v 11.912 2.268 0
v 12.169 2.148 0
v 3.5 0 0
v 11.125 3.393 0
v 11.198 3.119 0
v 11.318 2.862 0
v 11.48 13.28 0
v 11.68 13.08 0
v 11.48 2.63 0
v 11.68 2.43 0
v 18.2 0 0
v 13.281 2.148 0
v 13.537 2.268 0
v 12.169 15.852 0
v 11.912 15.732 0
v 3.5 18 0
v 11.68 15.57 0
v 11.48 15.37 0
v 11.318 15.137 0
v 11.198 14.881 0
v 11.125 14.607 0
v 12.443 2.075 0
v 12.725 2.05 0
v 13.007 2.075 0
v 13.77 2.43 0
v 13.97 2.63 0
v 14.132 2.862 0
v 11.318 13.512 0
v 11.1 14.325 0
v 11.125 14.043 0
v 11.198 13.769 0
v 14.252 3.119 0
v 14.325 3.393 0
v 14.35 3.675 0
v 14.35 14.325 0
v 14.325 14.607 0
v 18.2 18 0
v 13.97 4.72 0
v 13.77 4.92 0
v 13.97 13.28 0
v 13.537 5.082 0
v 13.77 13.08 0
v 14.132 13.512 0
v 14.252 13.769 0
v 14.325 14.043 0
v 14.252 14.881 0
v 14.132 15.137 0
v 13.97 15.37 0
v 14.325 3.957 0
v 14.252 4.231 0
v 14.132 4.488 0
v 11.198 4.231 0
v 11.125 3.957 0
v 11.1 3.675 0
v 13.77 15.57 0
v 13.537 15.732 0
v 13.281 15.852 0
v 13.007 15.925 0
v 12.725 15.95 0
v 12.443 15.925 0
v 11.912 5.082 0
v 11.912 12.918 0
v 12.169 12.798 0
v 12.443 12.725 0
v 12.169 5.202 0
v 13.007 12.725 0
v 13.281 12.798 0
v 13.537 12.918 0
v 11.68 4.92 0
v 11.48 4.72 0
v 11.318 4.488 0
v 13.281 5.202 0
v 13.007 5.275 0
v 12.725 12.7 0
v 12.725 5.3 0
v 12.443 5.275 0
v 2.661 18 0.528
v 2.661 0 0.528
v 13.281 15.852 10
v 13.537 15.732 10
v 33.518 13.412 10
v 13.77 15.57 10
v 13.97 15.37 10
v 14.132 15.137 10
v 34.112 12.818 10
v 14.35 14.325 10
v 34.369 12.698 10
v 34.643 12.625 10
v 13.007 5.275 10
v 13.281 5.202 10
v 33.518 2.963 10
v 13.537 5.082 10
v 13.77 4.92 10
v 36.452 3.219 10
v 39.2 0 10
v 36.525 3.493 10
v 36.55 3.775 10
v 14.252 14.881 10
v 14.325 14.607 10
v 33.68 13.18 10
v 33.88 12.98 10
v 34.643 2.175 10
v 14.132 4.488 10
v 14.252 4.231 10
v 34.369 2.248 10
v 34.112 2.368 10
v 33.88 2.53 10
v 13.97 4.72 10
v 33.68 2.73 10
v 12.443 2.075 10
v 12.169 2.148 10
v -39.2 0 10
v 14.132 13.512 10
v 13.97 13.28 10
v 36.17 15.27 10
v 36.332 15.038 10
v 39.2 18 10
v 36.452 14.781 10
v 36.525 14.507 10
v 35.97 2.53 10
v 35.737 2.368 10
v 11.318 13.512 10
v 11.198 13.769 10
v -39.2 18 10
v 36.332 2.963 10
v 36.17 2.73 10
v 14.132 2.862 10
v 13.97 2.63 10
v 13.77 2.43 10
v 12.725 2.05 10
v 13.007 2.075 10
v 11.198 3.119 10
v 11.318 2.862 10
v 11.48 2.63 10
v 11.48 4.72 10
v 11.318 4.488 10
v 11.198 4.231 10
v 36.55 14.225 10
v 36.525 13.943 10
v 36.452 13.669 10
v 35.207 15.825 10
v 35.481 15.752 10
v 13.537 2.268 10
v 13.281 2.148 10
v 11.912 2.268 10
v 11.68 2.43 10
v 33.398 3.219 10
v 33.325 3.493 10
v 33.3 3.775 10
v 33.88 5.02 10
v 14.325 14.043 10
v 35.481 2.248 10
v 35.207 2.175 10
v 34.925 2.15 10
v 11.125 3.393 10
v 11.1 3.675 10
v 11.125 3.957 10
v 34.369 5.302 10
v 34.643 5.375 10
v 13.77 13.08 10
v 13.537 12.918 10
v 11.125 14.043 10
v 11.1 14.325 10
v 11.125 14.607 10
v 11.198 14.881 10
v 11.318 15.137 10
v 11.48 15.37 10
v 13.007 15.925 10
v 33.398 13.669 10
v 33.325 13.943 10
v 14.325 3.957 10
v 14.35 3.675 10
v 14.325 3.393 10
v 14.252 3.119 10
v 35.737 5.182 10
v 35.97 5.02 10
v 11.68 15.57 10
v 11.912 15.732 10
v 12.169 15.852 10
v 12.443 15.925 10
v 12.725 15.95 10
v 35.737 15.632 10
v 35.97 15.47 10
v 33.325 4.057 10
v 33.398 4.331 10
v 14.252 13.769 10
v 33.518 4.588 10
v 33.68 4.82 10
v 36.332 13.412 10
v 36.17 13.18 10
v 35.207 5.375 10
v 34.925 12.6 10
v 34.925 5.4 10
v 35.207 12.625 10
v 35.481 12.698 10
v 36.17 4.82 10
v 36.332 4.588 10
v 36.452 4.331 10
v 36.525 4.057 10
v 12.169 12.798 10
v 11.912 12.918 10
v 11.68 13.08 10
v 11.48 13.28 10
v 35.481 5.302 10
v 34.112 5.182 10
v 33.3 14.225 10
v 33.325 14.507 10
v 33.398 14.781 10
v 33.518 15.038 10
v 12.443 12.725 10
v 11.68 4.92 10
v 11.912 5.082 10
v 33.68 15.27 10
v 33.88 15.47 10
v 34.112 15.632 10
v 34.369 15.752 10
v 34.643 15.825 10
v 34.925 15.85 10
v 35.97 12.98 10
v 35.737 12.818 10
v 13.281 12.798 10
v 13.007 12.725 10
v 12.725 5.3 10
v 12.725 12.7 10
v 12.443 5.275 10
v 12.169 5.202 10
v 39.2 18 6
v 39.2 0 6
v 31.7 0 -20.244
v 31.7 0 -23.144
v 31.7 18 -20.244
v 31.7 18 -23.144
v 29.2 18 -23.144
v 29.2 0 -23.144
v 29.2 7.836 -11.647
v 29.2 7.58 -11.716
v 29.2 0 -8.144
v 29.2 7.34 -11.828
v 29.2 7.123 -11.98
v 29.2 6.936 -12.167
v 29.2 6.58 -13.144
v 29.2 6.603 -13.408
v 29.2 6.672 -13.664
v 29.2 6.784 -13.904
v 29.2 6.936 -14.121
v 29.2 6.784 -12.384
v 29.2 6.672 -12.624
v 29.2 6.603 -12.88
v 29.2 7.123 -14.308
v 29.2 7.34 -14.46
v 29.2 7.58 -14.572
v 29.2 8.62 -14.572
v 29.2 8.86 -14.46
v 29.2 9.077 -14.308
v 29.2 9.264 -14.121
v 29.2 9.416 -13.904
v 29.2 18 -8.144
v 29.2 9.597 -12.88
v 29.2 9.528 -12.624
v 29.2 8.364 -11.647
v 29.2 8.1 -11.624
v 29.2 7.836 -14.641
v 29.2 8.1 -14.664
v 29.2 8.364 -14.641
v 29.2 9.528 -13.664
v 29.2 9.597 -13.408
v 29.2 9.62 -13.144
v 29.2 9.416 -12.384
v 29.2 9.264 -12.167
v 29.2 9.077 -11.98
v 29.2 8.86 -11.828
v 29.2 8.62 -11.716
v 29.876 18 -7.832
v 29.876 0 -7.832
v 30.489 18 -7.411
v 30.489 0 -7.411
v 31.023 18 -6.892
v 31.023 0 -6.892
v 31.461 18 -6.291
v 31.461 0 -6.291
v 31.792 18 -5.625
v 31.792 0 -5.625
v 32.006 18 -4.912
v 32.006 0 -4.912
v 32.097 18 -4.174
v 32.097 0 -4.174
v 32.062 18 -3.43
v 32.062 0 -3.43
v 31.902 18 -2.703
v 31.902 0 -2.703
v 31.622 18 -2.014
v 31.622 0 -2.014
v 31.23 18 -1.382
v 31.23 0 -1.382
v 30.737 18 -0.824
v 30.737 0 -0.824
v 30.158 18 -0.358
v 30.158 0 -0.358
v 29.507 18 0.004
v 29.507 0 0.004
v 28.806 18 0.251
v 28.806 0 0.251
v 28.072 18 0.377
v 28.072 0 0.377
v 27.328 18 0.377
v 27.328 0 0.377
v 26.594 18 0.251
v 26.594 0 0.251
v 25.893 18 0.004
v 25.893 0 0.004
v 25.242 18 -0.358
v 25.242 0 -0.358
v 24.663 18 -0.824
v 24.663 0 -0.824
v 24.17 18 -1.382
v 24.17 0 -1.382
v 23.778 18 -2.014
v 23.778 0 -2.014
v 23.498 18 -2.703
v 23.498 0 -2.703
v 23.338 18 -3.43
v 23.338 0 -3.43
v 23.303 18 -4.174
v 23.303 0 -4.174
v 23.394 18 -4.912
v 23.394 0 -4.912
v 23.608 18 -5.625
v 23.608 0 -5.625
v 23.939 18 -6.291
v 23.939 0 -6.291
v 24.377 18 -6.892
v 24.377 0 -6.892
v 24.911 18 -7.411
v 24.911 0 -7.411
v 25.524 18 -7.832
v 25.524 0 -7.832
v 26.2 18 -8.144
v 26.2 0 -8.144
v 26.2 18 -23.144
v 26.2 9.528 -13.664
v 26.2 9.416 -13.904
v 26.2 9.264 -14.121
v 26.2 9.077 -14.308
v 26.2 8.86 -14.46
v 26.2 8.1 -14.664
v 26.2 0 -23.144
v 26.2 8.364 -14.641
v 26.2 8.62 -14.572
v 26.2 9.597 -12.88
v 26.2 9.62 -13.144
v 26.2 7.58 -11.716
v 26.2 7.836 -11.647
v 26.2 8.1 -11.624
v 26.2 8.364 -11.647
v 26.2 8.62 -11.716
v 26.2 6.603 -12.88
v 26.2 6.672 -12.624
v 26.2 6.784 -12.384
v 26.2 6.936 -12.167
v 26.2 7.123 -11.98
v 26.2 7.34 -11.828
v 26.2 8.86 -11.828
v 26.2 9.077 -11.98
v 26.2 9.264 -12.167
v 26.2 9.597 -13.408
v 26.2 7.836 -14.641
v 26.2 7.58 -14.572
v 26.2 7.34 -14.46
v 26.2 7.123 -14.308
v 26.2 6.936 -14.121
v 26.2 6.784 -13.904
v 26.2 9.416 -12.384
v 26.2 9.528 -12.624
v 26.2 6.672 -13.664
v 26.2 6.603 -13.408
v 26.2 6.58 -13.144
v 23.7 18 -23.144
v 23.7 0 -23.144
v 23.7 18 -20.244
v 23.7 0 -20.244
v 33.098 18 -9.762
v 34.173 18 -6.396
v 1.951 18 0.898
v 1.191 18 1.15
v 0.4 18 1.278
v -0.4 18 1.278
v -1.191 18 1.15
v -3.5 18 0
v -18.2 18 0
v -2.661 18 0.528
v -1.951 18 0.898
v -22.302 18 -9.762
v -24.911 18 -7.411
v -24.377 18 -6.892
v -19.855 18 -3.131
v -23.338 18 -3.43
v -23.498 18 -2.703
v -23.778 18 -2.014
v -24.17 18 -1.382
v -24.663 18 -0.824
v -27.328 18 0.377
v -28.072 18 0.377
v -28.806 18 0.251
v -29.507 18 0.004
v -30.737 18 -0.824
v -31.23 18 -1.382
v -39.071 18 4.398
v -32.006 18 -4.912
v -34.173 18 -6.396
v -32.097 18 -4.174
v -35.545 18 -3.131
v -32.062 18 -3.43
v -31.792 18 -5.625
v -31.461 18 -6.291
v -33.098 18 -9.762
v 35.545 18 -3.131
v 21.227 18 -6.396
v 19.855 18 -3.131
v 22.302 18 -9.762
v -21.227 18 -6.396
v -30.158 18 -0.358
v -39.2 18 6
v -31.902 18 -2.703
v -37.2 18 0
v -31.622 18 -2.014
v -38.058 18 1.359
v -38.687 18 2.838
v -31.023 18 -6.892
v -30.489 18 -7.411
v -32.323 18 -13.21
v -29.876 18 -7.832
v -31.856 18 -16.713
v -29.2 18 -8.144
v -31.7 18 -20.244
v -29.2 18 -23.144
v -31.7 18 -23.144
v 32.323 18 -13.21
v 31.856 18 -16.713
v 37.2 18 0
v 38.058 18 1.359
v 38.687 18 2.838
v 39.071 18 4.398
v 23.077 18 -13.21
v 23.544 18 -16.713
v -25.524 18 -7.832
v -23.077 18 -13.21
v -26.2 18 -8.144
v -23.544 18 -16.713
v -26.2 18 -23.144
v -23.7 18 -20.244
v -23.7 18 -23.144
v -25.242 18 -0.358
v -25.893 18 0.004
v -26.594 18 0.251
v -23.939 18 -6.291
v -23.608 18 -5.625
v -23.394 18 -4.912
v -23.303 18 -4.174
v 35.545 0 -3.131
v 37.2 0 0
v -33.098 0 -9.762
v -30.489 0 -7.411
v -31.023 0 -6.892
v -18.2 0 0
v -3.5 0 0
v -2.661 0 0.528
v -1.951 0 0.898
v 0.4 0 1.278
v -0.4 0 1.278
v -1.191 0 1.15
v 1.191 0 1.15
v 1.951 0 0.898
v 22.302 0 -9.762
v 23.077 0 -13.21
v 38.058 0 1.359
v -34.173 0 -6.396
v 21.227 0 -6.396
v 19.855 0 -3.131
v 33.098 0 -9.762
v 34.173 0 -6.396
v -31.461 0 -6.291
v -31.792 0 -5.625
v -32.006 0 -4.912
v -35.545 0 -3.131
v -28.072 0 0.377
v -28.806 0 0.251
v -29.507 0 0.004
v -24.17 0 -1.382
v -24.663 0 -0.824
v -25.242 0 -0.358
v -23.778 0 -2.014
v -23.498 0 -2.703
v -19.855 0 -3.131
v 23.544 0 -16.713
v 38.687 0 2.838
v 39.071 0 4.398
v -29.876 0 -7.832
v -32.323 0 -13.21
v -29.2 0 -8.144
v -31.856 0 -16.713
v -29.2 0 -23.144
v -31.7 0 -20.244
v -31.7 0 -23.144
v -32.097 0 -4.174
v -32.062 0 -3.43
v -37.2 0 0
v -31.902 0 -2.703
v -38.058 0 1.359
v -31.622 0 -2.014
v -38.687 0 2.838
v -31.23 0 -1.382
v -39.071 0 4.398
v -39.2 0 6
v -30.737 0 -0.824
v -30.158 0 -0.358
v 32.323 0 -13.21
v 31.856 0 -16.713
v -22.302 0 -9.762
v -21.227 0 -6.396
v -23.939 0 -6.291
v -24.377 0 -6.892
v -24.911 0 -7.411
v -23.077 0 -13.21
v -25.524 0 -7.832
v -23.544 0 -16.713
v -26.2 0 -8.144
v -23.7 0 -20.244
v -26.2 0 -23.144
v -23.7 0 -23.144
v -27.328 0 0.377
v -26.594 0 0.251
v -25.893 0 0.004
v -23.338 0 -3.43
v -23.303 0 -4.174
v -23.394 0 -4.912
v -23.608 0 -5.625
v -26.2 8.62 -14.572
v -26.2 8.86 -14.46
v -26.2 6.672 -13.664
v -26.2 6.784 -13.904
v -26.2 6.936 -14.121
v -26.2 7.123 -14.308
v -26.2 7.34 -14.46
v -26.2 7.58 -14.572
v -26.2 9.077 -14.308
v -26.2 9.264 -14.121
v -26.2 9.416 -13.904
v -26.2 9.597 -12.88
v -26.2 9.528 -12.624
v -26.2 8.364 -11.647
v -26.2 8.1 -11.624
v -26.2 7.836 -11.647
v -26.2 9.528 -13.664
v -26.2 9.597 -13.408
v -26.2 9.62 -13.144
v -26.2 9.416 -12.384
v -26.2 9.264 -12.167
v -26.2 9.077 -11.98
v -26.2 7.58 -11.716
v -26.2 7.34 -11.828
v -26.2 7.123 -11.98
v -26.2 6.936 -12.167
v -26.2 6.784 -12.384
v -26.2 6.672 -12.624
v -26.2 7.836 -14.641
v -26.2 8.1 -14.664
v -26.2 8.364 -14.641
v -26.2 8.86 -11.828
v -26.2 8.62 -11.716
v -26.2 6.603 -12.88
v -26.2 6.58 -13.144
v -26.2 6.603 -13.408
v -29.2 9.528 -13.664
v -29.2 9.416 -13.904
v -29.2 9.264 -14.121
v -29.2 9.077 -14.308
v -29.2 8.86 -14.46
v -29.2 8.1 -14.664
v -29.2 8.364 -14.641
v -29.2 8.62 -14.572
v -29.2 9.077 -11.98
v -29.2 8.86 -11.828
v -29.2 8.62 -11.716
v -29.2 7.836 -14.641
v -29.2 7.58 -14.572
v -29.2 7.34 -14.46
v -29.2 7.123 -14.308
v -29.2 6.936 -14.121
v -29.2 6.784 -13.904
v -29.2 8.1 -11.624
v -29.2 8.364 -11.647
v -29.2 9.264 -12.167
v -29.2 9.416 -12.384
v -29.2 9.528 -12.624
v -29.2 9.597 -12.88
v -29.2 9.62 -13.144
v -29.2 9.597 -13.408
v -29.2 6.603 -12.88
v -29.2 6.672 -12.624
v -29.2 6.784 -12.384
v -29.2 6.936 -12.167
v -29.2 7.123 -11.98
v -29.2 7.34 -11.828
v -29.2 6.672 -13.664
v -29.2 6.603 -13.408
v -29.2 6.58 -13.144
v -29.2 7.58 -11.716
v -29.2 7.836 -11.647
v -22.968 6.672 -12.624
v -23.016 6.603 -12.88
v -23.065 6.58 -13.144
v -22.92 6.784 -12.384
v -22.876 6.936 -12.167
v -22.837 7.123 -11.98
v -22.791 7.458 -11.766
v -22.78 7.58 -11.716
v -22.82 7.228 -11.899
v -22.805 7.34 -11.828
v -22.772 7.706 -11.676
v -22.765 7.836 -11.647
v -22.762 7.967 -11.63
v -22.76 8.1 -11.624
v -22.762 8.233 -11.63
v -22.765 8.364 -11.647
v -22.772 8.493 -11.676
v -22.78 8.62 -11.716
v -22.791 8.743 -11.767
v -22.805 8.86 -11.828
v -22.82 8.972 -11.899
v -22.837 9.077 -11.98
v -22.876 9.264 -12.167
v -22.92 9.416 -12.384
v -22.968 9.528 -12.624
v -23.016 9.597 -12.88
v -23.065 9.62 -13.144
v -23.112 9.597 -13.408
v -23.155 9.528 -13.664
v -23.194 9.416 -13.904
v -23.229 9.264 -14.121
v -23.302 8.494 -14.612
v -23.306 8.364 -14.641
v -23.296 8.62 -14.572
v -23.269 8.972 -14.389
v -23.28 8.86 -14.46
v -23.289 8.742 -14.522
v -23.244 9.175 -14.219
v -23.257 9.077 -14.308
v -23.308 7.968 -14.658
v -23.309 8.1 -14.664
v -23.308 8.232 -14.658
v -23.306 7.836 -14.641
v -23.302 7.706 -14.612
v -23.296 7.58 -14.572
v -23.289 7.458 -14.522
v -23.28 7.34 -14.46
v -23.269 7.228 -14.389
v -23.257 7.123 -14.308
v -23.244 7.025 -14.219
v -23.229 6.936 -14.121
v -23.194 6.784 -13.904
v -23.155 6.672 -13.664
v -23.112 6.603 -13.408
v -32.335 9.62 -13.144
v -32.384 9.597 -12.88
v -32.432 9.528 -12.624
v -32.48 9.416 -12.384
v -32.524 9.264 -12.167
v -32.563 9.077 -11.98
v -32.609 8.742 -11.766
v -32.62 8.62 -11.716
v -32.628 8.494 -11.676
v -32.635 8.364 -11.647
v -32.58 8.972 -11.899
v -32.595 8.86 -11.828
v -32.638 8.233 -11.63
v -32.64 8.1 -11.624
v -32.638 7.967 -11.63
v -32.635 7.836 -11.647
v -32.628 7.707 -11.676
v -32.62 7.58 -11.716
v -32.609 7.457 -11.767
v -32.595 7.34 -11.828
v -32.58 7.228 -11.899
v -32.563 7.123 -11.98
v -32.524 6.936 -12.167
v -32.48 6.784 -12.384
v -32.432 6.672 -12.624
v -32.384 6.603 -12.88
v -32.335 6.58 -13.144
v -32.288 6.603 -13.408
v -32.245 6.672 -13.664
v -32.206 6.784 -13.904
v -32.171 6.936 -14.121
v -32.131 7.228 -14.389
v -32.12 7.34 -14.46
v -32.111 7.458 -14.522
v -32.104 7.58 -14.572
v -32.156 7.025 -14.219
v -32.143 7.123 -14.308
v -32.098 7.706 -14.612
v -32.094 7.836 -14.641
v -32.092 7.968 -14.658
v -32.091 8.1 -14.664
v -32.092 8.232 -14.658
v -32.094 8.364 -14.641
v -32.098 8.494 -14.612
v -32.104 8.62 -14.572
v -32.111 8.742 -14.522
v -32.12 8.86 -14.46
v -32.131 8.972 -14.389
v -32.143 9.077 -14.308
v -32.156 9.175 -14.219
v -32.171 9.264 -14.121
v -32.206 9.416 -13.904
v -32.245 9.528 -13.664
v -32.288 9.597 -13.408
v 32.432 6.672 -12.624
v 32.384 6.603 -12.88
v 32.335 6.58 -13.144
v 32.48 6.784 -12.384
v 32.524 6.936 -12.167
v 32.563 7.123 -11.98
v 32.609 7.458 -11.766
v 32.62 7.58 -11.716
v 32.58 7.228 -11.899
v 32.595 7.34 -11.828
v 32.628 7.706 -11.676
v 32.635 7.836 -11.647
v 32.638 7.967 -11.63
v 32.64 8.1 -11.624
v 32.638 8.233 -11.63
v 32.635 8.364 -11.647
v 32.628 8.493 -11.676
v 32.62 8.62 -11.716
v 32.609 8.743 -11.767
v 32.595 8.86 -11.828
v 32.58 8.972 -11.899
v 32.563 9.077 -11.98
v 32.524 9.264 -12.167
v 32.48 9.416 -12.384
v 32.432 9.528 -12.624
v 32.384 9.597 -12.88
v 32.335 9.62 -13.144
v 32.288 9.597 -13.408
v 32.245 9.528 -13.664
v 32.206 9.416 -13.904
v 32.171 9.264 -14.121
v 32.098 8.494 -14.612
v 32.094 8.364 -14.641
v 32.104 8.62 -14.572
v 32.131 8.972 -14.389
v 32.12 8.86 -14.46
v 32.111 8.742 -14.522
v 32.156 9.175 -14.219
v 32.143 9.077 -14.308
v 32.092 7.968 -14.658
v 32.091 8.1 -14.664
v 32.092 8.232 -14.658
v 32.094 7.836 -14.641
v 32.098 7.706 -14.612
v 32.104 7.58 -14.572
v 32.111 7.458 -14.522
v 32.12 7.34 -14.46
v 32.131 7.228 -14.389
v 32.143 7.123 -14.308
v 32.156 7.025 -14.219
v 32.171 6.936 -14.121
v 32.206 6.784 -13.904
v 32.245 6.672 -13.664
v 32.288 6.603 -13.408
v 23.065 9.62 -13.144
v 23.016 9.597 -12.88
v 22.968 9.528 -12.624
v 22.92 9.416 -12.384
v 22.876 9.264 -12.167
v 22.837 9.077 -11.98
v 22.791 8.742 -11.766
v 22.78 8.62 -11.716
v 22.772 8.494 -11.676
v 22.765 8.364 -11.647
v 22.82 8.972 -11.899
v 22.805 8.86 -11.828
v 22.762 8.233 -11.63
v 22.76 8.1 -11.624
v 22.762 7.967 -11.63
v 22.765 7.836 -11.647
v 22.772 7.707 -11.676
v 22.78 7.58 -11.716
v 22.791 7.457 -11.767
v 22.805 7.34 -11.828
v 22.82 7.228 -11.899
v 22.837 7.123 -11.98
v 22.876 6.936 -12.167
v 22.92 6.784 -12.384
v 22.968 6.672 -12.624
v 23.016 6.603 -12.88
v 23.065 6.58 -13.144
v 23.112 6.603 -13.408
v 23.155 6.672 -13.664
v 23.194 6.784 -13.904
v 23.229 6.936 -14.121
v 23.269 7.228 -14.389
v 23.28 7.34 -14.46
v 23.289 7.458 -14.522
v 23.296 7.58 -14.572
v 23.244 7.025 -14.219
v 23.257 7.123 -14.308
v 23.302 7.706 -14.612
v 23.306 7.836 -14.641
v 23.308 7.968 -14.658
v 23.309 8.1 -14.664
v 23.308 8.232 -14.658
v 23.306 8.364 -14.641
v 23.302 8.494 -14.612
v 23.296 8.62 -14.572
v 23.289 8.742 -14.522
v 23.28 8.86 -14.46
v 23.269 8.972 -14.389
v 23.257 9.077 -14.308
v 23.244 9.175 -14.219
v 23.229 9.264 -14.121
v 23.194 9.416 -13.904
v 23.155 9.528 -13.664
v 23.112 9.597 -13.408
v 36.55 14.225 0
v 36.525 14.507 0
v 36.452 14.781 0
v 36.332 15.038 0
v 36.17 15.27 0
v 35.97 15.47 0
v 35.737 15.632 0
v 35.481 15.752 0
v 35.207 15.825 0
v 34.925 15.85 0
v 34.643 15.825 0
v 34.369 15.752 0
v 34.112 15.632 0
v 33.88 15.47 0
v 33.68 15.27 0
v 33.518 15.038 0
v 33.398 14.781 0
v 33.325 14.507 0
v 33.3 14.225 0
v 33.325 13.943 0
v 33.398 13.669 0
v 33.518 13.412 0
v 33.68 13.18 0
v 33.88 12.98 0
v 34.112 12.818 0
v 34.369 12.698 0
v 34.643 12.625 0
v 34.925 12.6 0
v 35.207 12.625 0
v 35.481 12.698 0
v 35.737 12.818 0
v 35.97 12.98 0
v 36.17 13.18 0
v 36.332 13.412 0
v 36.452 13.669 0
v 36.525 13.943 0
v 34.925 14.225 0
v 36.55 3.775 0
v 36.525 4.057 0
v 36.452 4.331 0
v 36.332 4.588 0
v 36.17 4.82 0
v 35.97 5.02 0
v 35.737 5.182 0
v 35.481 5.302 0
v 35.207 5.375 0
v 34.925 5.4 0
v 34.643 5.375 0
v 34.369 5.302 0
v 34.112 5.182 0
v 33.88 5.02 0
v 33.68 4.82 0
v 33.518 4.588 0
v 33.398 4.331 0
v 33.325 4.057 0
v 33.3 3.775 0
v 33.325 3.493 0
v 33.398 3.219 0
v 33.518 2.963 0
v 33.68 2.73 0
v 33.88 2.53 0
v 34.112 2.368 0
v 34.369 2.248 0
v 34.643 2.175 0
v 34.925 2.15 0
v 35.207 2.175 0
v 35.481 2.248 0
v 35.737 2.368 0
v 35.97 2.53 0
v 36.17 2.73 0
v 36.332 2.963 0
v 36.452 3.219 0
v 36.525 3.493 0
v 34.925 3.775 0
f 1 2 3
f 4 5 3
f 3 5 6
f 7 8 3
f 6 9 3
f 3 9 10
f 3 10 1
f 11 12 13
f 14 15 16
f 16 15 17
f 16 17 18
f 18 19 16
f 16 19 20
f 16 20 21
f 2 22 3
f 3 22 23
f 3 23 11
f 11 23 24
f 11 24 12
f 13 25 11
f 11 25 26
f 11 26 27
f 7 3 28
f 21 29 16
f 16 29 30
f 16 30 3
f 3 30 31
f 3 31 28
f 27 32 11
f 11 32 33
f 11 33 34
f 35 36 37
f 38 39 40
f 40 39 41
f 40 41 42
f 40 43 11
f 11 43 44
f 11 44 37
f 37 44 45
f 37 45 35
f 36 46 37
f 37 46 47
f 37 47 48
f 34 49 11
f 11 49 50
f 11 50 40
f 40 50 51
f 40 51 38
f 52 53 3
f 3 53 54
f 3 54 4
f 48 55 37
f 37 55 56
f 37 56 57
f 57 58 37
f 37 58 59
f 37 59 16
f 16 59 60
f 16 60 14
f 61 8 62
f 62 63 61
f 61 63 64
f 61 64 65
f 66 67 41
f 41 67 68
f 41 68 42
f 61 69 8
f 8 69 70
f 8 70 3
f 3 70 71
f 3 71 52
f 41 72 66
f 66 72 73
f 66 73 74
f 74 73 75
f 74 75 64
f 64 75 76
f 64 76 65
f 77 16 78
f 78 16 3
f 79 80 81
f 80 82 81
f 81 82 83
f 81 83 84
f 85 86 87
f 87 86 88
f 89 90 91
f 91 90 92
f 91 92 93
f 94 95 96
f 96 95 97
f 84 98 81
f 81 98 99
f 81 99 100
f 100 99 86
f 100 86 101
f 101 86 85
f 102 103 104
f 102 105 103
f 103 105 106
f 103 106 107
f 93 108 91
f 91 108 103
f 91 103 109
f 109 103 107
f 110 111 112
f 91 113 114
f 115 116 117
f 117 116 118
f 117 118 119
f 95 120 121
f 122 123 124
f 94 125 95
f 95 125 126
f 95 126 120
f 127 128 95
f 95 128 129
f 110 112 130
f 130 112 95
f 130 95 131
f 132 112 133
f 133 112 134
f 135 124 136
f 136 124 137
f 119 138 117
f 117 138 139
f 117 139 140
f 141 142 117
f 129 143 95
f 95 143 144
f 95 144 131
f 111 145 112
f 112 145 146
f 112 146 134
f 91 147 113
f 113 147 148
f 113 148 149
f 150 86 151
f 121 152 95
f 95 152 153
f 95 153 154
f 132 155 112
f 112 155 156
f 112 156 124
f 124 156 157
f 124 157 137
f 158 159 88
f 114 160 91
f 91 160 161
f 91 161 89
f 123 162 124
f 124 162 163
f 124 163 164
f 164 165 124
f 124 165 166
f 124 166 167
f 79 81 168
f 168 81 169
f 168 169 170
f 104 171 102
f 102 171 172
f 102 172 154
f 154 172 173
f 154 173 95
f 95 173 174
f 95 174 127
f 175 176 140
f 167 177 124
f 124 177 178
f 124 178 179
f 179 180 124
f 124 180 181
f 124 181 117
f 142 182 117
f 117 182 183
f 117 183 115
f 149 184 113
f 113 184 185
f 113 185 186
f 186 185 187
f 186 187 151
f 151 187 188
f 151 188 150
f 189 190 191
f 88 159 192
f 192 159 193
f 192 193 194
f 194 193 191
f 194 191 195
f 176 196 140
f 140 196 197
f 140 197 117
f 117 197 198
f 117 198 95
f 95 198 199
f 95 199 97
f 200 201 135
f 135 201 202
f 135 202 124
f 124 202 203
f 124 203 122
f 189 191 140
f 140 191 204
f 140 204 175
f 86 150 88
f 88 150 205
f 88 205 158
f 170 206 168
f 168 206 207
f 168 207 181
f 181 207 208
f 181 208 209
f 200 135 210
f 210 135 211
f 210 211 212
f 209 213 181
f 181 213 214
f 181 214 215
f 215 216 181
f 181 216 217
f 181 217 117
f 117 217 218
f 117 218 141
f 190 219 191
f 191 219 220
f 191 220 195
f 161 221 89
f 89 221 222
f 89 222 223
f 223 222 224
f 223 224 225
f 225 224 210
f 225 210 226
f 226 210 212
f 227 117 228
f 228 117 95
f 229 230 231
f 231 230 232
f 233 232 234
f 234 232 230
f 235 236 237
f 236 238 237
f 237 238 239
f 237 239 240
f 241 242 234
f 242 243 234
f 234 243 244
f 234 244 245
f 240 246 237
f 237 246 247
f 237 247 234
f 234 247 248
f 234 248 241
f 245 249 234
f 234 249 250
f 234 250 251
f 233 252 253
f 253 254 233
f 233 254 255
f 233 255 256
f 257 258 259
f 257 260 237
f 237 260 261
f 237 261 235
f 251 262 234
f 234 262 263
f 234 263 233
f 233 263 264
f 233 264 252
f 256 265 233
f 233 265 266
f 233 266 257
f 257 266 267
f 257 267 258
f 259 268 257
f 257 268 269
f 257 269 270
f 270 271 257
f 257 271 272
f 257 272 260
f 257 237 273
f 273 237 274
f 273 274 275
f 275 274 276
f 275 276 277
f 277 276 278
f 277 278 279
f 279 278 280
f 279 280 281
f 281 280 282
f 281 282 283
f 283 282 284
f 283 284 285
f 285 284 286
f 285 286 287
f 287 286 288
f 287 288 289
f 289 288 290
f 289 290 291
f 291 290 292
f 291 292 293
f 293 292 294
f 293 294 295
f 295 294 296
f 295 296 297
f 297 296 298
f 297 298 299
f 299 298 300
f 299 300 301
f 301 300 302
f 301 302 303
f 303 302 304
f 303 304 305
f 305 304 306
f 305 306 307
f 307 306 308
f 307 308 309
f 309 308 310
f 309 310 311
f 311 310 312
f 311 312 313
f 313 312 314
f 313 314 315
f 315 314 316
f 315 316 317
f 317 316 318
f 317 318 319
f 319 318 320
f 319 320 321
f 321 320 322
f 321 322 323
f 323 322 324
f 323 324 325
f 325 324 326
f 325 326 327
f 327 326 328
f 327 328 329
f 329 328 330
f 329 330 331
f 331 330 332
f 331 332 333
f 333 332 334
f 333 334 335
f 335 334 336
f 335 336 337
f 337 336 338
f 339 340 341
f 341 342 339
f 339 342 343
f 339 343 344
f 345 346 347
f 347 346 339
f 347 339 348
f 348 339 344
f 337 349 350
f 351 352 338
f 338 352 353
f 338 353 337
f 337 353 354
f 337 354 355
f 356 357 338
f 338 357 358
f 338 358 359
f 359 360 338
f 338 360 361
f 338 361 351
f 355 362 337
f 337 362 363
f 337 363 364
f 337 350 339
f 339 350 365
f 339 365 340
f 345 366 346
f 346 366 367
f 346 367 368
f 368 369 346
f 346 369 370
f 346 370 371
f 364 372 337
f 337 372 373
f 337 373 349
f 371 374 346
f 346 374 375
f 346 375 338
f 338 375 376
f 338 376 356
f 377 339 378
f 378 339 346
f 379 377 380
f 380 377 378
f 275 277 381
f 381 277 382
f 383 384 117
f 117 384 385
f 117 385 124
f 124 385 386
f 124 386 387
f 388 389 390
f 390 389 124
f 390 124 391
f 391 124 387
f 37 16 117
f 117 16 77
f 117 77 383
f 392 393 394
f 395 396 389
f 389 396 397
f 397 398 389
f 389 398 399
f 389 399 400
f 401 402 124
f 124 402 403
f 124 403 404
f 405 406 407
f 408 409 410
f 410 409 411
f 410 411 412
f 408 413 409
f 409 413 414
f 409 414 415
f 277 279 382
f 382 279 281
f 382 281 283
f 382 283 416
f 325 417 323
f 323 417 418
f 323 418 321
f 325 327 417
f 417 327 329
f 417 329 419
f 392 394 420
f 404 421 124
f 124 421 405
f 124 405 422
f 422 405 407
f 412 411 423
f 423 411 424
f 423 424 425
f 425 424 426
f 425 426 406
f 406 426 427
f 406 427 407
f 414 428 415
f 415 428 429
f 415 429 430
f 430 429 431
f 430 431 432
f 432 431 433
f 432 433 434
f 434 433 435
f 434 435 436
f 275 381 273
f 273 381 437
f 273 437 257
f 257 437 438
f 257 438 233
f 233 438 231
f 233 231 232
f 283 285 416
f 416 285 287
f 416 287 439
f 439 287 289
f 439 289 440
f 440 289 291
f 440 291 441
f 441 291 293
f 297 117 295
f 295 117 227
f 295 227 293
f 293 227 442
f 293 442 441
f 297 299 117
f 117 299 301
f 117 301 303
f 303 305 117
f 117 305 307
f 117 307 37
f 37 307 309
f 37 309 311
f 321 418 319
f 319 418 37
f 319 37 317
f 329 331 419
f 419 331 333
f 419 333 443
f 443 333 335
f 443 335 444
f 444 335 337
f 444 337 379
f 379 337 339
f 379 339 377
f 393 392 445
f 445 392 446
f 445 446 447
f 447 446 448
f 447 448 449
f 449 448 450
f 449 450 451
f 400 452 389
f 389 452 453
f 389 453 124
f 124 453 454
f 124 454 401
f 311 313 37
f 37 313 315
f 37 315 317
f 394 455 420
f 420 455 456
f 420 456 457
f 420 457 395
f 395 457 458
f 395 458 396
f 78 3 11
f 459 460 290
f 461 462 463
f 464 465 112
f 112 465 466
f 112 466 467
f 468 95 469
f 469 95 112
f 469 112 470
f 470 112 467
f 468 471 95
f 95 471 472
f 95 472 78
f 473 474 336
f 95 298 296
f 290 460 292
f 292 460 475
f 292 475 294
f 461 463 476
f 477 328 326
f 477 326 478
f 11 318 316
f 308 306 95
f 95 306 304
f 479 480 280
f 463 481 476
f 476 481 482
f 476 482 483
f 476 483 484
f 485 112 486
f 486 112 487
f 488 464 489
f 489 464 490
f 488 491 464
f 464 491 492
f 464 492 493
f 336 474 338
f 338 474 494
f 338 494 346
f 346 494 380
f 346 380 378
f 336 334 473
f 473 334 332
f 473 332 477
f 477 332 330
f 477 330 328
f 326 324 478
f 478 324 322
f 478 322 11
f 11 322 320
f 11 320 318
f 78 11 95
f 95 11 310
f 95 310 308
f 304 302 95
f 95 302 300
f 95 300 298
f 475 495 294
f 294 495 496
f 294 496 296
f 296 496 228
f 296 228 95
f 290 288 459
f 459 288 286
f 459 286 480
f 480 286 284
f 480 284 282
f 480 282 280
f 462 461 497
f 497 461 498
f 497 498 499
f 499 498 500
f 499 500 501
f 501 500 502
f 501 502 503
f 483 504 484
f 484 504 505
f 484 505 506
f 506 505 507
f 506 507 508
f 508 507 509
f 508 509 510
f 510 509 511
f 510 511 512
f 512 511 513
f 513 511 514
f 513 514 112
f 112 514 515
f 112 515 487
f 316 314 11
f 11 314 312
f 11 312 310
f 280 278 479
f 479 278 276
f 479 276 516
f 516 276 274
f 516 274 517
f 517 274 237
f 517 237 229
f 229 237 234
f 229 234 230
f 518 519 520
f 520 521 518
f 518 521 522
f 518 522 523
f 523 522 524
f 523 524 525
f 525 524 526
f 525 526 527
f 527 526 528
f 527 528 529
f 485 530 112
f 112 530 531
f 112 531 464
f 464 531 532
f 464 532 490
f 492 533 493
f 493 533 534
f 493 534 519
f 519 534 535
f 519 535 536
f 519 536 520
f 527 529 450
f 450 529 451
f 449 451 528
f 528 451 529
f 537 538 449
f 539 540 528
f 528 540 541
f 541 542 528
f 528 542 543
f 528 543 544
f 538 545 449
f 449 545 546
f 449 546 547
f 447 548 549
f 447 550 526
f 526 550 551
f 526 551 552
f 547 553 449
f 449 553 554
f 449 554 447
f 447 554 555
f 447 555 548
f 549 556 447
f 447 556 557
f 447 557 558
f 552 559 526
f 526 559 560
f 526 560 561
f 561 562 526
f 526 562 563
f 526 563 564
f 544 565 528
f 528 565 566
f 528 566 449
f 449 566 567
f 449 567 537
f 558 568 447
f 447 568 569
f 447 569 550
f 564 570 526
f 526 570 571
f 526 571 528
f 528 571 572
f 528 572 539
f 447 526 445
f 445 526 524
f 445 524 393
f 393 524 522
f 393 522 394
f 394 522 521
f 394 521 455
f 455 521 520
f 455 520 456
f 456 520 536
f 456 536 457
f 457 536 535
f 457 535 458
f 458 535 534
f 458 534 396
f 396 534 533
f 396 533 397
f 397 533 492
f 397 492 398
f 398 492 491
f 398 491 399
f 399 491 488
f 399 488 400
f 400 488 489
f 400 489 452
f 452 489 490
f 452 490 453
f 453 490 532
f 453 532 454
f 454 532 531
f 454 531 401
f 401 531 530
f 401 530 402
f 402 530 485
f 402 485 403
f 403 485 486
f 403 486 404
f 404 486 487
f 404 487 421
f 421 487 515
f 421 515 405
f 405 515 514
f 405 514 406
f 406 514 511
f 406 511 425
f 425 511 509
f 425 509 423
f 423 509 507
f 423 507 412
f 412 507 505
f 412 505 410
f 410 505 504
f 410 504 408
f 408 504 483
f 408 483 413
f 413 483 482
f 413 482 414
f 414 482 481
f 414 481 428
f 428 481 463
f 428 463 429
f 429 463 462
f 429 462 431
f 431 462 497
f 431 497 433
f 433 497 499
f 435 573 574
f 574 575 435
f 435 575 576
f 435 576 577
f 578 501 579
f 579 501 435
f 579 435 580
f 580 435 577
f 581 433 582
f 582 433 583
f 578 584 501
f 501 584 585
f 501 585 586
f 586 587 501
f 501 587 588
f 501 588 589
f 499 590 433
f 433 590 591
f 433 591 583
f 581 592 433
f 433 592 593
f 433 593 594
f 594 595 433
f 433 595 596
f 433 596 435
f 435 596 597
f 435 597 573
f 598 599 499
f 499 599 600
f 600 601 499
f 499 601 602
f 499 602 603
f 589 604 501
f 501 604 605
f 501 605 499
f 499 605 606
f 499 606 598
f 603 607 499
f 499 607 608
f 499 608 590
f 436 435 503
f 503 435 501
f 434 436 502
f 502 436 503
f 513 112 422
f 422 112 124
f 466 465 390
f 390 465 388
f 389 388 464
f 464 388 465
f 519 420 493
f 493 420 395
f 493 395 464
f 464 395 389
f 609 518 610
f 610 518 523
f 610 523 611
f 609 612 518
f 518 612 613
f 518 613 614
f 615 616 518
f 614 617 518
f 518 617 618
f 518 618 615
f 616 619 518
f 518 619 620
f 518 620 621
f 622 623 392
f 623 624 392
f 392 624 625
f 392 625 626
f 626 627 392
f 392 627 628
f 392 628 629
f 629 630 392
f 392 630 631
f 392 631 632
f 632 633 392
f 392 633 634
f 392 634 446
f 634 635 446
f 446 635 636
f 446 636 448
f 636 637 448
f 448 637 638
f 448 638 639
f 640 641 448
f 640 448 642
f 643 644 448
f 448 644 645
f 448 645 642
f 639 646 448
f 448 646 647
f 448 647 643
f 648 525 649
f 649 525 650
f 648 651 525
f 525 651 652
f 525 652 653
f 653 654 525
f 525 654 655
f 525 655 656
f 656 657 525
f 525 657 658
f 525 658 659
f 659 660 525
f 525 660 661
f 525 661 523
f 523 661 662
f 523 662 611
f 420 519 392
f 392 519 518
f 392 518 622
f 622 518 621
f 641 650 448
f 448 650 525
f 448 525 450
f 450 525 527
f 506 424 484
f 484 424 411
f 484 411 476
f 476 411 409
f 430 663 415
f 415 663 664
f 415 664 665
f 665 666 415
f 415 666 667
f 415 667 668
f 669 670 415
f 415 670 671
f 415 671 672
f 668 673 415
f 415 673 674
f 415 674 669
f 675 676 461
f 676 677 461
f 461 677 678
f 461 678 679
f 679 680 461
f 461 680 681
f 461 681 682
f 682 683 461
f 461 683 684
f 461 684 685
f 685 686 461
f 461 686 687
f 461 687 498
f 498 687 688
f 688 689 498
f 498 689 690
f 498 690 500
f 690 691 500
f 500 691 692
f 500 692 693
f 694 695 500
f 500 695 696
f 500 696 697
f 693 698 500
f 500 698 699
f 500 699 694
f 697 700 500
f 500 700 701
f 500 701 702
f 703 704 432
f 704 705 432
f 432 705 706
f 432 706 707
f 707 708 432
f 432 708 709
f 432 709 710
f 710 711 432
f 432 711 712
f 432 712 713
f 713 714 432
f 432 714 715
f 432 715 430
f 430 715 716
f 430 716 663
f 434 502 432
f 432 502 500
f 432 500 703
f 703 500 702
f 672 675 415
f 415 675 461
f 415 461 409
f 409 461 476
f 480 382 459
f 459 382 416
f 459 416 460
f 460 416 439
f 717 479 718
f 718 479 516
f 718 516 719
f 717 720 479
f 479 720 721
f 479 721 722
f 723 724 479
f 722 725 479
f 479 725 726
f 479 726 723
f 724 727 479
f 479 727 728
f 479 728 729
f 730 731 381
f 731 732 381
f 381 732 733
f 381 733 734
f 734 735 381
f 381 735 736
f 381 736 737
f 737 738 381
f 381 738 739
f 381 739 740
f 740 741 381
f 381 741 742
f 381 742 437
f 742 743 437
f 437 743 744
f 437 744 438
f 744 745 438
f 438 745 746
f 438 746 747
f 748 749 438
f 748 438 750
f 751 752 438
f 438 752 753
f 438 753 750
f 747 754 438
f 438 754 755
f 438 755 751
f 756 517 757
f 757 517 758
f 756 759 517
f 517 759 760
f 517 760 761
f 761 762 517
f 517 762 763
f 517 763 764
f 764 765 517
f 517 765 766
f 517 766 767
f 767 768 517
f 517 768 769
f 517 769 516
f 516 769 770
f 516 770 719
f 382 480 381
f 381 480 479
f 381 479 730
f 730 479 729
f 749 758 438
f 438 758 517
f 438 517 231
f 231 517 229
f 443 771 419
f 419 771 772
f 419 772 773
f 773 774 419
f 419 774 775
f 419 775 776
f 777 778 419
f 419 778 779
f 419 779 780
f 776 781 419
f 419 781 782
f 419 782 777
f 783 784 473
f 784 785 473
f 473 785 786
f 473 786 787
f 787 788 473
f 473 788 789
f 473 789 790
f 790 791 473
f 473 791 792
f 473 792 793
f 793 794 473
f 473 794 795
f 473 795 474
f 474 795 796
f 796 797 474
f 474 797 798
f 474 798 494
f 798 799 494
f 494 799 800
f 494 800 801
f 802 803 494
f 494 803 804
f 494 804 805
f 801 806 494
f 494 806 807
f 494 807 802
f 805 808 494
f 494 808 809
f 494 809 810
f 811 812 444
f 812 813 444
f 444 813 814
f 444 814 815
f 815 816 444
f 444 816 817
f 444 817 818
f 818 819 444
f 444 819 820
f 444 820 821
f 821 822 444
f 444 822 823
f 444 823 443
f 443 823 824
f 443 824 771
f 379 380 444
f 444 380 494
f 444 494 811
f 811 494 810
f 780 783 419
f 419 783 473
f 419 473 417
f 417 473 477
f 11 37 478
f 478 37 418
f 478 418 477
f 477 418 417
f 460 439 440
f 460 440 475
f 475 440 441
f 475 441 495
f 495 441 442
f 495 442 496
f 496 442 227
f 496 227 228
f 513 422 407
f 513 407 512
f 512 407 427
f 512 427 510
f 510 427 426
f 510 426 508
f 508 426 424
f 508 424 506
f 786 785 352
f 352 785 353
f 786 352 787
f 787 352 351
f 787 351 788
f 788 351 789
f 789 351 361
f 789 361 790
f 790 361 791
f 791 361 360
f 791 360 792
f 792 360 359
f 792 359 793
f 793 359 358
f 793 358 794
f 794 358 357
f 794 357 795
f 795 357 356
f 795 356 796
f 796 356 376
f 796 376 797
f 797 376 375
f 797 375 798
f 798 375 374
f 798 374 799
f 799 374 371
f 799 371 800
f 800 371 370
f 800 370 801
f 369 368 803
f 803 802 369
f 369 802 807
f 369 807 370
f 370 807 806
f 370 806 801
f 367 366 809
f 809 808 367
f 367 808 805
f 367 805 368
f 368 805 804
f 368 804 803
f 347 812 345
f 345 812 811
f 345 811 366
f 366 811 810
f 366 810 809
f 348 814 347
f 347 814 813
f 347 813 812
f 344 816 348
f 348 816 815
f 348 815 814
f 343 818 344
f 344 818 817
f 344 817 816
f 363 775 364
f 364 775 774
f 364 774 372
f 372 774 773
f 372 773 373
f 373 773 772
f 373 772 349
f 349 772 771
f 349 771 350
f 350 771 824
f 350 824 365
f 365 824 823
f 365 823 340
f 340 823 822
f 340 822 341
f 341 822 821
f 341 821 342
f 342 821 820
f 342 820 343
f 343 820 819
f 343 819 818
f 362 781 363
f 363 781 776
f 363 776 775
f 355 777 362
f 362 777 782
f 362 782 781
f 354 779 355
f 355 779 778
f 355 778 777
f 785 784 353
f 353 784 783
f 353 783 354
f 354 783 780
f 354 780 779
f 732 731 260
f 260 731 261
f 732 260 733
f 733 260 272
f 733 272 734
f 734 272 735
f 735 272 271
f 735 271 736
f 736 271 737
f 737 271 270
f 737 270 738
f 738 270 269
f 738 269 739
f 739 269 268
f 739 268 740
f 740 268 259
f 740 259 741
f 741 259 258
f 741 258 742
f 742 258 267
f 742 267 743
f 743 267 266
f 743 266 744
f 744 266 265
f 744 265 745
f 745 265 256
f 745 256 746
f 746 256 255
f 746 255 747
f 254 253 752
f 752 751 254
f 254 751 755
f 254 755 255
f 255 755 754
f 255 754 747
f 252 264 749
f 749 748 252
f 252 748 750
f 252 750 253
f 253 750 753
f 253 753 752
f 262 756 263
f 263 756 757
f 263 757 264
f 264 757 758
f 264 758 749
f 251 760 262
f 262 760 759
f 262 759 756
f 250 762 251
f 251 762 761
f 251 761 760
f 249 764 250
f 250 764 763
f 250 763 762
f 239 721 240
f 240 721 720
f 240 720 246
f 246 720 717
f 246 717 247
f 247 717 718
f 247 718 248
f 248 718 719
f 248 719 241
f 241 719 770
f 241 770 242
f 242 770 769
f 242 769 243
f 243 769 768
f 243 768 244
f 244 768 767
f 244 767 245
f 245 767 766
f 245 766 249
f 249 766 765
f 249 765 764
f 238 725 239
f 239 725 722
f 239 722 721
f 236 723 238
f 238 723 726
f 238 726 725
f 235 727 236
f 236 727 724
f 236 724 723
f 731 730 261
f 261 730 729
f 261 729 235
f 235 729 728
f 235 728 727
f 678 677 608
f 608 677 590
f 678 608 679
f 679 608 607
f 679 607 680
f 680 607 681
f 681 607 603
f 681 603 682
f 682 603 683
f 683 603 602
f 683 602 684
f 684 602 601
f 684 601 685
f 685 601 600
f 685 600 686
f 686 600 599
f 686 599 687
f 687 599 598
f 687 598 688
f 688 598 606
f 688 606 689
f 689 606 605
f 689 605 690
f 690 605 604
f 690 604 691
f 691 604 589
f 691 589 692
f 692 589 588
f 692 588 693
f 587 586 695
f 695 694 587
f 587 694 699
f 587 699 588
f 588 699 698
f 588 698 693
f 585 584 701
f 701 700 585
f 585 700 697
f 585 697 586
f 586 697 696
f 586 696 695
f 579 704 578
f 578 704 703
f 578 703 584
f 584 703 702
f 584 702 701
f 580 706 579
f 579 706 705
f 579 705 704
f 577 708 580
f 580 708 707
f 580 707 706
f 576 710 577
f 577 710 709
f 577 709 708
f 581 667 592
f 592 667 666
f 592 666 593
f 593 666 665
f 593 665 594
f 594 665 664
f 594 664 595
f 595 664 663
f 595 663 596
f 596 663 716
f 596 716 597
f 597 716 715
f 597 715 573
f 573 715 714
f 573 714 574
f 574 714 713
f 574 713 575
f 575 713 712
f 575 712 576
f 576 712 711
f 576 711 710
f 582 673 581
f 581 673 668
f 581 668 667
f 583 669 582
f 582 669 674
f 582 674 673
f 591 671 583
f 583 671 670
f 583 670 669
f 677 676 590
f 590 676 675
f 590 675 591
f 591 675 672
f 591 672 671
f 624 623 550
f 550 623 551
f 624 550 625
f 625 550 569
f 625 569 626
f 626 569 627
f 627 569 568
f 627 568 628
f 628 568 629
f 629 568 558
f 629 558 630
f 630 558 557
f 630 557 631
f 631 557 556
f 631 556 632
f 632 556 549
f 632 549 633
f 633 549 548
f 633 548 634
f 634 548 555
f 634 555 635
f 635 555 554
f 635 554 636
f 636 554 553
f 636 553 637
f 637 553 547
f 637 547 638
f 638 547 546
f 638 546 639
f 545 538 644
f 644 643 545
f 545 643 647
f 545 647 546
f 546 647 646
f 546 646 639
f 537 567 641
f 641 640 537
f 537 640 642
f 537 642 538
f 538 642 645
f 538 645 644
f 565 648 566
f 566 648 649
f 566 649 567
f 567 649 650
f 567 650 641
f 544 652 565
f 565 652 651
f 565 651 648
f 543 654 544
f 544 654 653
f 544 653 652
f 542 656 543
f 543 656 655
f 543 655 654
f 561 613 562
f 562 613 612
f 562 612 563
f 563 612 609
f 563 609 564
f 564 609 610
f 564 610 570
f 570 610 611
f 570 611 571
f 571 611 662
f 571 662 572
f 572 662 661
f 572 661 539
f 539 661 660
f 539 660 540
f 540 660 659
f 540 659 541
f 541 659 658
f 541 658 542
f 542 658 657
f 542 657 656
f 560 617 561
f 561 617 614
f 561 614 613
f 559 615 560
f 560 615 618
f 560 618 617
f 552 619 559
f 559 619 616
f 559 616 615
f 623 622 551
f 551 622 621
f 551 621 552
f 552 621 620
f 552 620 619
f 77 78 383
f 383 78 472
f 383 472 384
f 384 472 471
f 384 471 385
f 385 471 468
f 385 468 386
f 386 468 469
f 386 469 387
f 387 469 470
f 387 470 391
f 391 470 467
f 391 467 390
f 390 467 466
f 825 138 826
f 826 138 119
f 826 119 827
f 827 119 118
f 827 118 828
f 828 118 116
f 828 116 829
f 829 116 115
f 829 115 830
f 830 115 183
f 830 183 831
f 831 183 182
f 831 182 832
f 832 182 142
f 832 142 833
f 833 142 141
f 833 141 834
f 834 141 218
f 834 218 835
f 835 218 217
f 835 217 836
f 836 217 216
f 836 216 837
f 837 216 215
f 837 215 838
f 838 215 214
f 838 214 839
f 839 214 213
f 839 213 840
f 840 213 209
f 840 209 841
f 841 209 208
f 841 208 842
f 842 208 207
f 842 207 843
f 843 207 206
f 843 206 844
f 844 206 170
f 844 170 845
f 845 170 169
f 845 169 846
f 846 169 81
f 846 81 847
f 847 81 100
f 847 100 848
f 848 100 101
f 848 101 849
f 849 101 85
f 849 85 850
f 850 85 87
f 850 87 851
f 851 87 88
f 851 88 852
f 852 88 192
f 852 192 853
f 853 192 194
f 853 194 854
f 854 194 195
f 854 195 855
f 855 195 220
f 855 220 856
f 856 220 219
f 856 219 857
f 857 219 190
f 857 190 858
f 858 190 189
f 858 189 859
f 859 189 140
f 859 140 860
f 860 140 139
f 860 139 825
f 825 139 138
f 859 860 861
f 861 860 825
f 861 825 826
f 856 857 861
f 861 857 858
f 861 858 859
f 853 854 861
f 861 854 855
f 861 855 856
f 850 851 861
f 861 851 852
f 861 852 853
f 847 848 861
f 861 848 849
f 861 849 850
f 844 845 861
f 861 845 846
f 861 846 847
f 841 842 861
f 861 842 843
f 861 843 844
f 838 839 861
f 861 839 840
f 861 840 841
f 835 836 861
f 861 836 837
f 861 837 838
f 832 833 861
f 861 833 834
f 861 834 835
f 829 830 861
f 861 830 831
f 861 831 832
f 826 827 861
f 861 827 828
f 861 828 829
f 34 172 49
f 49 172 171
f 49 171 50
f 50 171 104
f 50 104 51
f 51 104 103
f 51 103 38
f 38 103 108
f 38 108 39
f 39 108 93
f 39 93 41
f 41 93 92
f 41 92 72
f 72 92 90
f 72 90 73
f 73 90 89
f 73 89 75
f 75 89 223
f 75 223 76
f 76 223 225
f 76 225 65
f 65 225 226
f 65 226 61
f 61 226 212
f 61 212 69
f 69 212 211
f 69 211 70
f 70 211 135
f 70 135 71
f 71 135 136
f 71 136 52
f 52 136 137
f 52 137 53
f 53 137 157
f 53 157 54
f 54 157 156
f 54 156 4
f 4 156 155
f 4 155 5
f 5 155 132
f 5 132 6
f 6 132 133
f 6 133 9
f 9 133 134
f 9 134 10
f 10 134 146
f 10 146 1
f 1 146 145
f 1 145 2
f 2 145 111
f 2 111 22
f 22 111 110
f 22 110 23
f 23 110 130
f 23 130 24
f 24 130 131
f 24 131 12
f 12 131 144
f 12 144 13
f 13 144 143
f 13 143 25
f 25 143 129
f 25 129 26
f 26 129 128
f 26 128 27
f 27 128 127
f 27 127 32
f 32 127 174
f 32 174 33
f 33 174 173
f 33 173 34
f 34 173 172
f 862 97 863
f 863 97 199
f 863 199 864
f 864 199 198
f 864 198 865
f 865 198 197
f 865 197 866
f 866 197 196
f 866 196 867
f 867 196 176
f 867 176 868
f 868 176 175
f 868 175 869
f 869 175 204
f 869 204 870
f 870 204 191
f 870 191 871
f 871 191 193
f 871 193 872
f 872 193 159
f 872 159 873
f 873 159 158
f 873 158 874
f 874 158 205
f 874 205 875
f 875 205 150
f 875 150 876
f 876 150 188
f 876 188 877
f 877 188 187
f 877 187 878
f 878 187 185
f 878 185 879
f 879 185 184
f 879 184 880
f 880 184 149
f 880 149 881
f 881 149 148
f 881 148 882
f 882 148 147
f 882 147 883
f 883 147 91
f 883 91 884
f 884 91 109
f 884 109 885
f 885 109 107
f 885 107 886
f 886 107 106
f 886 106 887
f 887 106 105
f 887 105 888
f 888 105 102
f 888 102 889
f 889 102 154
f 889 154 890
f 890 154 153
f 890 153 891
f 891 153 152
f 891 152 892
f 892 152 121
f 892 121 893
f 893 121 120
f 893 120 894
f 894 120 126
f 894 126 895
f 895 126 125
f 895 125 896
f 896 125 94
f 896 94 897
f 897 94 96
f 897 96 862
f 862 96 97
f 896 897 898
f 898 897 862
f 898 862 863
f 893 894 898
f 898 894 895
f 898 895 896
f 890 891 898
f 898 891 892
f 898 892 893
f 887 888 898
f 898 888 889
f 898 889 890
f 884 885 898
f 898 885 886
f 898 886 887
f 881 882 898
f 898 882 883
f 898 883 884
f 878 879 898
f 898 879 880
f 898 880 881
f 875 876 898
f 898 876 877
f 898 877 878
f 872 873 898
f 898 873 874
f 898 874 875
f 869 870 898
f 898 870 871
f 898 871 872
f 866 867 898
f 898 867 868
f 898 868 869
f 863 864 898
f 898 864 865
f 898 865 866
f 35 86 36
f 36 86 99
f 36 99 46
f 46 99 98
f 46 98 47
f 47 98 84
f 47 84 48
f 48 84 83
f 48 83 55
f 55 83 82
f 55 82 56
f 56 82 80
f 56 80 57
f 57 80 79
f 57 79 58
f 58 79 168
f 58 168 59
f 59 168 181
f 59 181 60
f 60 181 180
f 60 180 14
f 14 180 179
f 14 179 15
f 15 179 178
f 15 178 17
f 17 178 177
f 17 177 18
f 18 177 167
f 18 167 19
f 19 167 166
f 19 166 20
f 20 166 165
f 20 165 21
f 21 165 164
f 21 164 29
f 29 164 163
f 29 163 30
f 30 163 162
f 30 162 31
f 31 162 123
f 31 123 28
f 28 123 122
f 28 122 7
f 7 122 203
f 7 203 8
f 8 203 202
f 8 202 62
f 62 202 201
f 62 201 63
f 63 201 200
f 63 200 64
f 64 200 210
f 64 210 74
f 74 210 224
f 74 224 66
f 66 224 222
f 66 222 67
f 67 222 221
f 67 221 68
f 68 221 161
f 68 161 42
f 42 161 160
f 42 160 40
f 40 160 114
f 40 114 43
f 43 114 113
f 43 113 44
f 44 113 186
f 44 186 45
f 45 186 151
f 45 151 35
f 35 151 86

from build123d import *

# Parameters (mm, degrees)
BOSS_EXTRUDE1_DEPTH     = 18
FILLET1_R               = 40
FILLET2_R               = 10
CUT_EXTRUDE1_DEPTH      = 75.41915473
CUT_EXTRUDE1_DEPTH_BACK = 75.41915473
SKETCH8_R               = 1.52
FILLET3_R               = 5
SKETCH13_R              = 1.625
CUT_EXTRUDE6_DEPTH      = 10
SKETCH14_R              = 1.625
CUT_EXTRUDE7_DEPTH      = 10


with BuildPart() as part:
    # Sketch7 → Boss-Extrude1 (new body)
    with BuildSketch(Plane(origin=(0, 0, 0), x_dir=(1, 0, 0), z_dir=(0, 1, 0))):
        with BuildLine():
            Line((3.5, 0), (18.2, 0))
            Line((18.2, 0), (20.800813361, 4.113644998))
            ThreePointArc((20.800813361, 4.113644998), (21.592172613, 7.217756586), (23.7, 9.629980027))
            Line((23.7, 9.629980027), (23.7, 23.144126484))
            Line((23.7, 23.144126484), (26.2, 23.144126484))
            Line((26.2, 23.144126484), (26.2, 8.144126484))
            ThreePointArc((26.2, 8.144126484), (27.7, -0.392297092), (29.2, 8.144126484))
            Line((29.2, 8.144126484), (29.2, 23.144126484))
            Line((29.2, 23.144126484), (31.7, 23.144126484))
            Line((31.7, 23.144126484), (31.7, 9.629980027))
            ThreePointArc((31.7, 9.629980027), (33.807827387, 7.217756586), (34.599186639, 4.113644998))
            Line((34.599186639, 4.113644998), (37.2, 0))
            Line((37.2, 0), (39.2, 0))
            Line((39.2, 0), (39.2, -10))
            Line((39.2, -10), (0, -10))
            Line((0, -10), (0, -2.2))
            Line((0, -2.2), (3.5, 0))
        make_face()
    boss_extrude1 = extrude(amount=BOSS_EXTRUDE1_DEPTH)

    # Mirror1: Boss-Extrude1 across plane
    add(boss_extrude1.mirror(Plane(origin=(0, 18, 10), x_dir=(0, 0, 1), z_dir=(1, 0, 0))))

    # Fillet1
    # the kernel refuses this fillet: 40 mm, written as the material it adds along each edge
    with BuildSketch(Plane(origin=(23.7, 0, -9.629980027), x_dir=(0, 0, -1), z_dir=(0, 1, 0)), Plane(origin=(-31.7, 0, -9.629980027), x_dir=(0, 0, -1), z_dir=(0, 1, 0))) as fillet1_piece_1:
        with BuildLine():
            CenterArc((10.613793835, 40), FILLET1_R, 249.745857862, 20.254142138)
            Line((-3.233601435, 2.473347548), (-3.51054934, 1.722814499))
            ThreePointArc((-3.51054934, 1.722814499), (-1.916270335, 0.845153632), (-0.651858217, -0.463768116))
            Line((-0.651858217, -0.463768116), (0, -0.8))
            Line((0, -0.8), (10.613793835, -0.8))
            Line((10.613793835, -0.8), (10.613793835, 0))
        make_face()
    extrude(amount=18)
    with BuildSketch(Plane(origin=(20.800813361, 0, -4.113644998), x_dir=(0.18333937231858005, 0, -0.9830496806152929), z_dir=(0, 1, 0)), Plane(origin=(-34.599186639, 0, -4.113644998), x_dir=(0.18333937231857603, 0, -0.9830496806152935), z_dir=(0, 1, 0))) as fillet1_piece_2:
        with BuildLine():
            CenterArc((9.050455959, 39.429951175), FILLET1_R, 250.166978756, 10.14844141)
            Line((-4.52074889, 1.802535653), (-4.792172987, 1.049987342))
            ThreePointArc((-4.792172987, 1.049987342), (-2.556670036, 0.158160214), (-0.296295591, -0.743107612))
            Line((-0.296295591, -0.743107612), (0.134579271, -0.788599024))
            ThreePointArc((0.134579271, -0.788599024), (1.16074621, -0.701666578), (2.18691315, -0.788599024))
            Line((2.18691315, -0.788599024), (2.321492421, 0))
        make_face()
    extrude(amount=18)
    with BuildSketch(Plane(origin=(31.7, 0, -9.629980027), x_dir=(0, 0, -1), z_dir=(0, 1, 0))) as fillet1_piece_3:
        with BuildLine():
            CenterArc((10.613793835, -40), FILLET1_R, 90, 20.254142138)
            Line((-3.233601435, -2.473347548), (-3.51054934, -1.722814499))
            ThreePointArc((-3.51054934, -1.722814499), (-1.916270335, -0.845153632), (-0.651858217, 0.463768116))
            Line((-0.651858217, 0.463768116), (0, 0.8))
            Line((0, 0.8), (10.613793835, 0.8))
            Line((10.613793835, 0.8), (10.613793835, 0))
        make_face()
    extrude(amount=18)
    with BuildSketch(Plane(origin=(34.599186639, 0, -4.113644998), x_dir=(0.5343927114747591, 0, 0.8452363160221257), z_dir=(0, 1, 0)), Plane(origin=(-20.800813361, 0, -4.113644998), x_dir=(0.5343927114747586, 0, 0.8452363160221262), z_dir=(0, 1, 0))) as fillet1_piece_4:
        with BuildLine():
            CenterArc((6.196822464, 39.977883812), FILLET1_R, 257.946173426, 10.14844141)
            Line((-2.156398361, 0.859809961), (-2.323462777, 0.077448484))
            ThreePointArc((-2.323462777, 0.077448484), (-1.338075072, -0.221862238), (-0.417081618, -0.682673366))
            Line((-0.417081618, -0.682673366), (0, -0.8))
            ThreePointArc((0, -0.8), (2.433428924, -0.8), (4.840258555, -0.799557676))
            Line((4.840258555, -0.799557676), (4.866857847, 0))
        make_face()
    extrude(amount=18)
    with BuildSketch(Plane(origin=(-23.7, 0, -9.629980027), x_dir=(0.6075420957696648, 0, 0.7942874806188269), z_dir=(0, 1, 0))) as fillet1_piece_5:
        with BuildLine():
            CenterArc((15.871280266, 38.219825775), FILLET1_R, 232.588008111, 20.254142138)
            Line((-8.430403565, 6.44832655), (-8.916437241, 5.812896566))
            Line((-8.916437241, 5.812896566), (-0.486033677, -0.635429984))
            Line((-0.486033677, -0.635429984), (0.236004168, -0.764396516))
            ThreePointArc((0.236004168, -0.764396516), (2.035535945, -0.492919946), (3.835067722, -0.764396516))
            Line((3.835067722, -0.764396516), (4.07107189, 0))
        make_face()
    extrude(amount=18)

    # Fillet2
    # the kernel refuses this fillet: 10 mm, written as the material it takes off along each edge
    with BuildSketch(Plane(origin=(-39.2, -15, 0), x_dir=(1, 0, 0), z_dir=(0, 1, 0))) as fillet2_piece_1:
        with BuildLine():
            CenterArc((10, -6), FILLET2_R, 143.130102354, 36.869897646)
            Line((0, -6), (-0.2, -6))
            Line((-0.2, -6), (-0.2, 0))
            Line((-0.2, 0), (0, 0.2))
            ThreePointArc((0, 0.2), (1, 0.2), (1.84, 0.12))
            Line((1.84, 0.12), (2, 0))
        make_face()
    extrude(amount=48, mode=Mode.SUBTRACT)
    with BuildSketch(Plane(origin=(39.2, -15, 0), x_dir=(0, 0, 1), z_dir=(0, 1, 0))) as fillet2_piece_2:
        with BuildLine():
            CenterArc((6, -10), FILLET2_R, 90, 36.869897646)
            Line((0, -2), (-0.12, -1.84))
            ThreePointArc((-0.12, -1.84), (-0.2, -1), (-0.2, 0))
            Line((-0.2, 0), (0, 0.2))
            Line((0, 0.2), (6, 0.2))
            Line((6, 0.2), (6, 0))
        make_face()
    extrude(amount=48, mode=Mode.SUBTRACT)

    # Sketch8 → Cut-Extrude1 (cut, two sides: drawn at the far end of the back side and taken through both)
    with BuildSketch(Plane.ZY.offset(-29.2).offset(-CUT_EXTRUDE1_DEPTH_BACK)):
        with Locations((-13.144126484, 8.1)):
            Circle(SKETCH8_R)
    extrude(amount=CUT_EXTRUDE1_DEPTH + CUT_EXTRUDE1_DEPTH_BACK, mode=Mode.SUBTRACT)

    # Fillet3
    fillet3_edges = [part.edges().sort_by_distance(p)[0] for p in [
        (0, 9, 2.2),
    ]]
    fillet(fillet3_edges, radius=FILLET3_R)

    # Sketch13 → Cut-Extrude6 (cut)
    with BuildSketch(Plane.XY.offset(10)):
        with Locations((12.725, 3.675)):
            Circle(SKETCH13_R)
        with Locations((34.925, 14.225)):
            Circle(SKETCH13_R)
    extrude(amount=-CUT_EXTRUDE6_DEPTH, mode=Mode.SUBTRACT)

    # Sketch14 → Cut-Extrude7 (cut)
    with BuildSketch(Plane.XY.offset(10)):
        with Locations((12.725, 14.325)):
            Circle(SKETCH14_R)
        with Locations((34.925, 3.775)):
            Circle(SKETCH14_R)
    extrude(amount=-CUT_EXTRUDE7_DEPTH, mode=Mode.SUBTRACT)


solid = part.part
